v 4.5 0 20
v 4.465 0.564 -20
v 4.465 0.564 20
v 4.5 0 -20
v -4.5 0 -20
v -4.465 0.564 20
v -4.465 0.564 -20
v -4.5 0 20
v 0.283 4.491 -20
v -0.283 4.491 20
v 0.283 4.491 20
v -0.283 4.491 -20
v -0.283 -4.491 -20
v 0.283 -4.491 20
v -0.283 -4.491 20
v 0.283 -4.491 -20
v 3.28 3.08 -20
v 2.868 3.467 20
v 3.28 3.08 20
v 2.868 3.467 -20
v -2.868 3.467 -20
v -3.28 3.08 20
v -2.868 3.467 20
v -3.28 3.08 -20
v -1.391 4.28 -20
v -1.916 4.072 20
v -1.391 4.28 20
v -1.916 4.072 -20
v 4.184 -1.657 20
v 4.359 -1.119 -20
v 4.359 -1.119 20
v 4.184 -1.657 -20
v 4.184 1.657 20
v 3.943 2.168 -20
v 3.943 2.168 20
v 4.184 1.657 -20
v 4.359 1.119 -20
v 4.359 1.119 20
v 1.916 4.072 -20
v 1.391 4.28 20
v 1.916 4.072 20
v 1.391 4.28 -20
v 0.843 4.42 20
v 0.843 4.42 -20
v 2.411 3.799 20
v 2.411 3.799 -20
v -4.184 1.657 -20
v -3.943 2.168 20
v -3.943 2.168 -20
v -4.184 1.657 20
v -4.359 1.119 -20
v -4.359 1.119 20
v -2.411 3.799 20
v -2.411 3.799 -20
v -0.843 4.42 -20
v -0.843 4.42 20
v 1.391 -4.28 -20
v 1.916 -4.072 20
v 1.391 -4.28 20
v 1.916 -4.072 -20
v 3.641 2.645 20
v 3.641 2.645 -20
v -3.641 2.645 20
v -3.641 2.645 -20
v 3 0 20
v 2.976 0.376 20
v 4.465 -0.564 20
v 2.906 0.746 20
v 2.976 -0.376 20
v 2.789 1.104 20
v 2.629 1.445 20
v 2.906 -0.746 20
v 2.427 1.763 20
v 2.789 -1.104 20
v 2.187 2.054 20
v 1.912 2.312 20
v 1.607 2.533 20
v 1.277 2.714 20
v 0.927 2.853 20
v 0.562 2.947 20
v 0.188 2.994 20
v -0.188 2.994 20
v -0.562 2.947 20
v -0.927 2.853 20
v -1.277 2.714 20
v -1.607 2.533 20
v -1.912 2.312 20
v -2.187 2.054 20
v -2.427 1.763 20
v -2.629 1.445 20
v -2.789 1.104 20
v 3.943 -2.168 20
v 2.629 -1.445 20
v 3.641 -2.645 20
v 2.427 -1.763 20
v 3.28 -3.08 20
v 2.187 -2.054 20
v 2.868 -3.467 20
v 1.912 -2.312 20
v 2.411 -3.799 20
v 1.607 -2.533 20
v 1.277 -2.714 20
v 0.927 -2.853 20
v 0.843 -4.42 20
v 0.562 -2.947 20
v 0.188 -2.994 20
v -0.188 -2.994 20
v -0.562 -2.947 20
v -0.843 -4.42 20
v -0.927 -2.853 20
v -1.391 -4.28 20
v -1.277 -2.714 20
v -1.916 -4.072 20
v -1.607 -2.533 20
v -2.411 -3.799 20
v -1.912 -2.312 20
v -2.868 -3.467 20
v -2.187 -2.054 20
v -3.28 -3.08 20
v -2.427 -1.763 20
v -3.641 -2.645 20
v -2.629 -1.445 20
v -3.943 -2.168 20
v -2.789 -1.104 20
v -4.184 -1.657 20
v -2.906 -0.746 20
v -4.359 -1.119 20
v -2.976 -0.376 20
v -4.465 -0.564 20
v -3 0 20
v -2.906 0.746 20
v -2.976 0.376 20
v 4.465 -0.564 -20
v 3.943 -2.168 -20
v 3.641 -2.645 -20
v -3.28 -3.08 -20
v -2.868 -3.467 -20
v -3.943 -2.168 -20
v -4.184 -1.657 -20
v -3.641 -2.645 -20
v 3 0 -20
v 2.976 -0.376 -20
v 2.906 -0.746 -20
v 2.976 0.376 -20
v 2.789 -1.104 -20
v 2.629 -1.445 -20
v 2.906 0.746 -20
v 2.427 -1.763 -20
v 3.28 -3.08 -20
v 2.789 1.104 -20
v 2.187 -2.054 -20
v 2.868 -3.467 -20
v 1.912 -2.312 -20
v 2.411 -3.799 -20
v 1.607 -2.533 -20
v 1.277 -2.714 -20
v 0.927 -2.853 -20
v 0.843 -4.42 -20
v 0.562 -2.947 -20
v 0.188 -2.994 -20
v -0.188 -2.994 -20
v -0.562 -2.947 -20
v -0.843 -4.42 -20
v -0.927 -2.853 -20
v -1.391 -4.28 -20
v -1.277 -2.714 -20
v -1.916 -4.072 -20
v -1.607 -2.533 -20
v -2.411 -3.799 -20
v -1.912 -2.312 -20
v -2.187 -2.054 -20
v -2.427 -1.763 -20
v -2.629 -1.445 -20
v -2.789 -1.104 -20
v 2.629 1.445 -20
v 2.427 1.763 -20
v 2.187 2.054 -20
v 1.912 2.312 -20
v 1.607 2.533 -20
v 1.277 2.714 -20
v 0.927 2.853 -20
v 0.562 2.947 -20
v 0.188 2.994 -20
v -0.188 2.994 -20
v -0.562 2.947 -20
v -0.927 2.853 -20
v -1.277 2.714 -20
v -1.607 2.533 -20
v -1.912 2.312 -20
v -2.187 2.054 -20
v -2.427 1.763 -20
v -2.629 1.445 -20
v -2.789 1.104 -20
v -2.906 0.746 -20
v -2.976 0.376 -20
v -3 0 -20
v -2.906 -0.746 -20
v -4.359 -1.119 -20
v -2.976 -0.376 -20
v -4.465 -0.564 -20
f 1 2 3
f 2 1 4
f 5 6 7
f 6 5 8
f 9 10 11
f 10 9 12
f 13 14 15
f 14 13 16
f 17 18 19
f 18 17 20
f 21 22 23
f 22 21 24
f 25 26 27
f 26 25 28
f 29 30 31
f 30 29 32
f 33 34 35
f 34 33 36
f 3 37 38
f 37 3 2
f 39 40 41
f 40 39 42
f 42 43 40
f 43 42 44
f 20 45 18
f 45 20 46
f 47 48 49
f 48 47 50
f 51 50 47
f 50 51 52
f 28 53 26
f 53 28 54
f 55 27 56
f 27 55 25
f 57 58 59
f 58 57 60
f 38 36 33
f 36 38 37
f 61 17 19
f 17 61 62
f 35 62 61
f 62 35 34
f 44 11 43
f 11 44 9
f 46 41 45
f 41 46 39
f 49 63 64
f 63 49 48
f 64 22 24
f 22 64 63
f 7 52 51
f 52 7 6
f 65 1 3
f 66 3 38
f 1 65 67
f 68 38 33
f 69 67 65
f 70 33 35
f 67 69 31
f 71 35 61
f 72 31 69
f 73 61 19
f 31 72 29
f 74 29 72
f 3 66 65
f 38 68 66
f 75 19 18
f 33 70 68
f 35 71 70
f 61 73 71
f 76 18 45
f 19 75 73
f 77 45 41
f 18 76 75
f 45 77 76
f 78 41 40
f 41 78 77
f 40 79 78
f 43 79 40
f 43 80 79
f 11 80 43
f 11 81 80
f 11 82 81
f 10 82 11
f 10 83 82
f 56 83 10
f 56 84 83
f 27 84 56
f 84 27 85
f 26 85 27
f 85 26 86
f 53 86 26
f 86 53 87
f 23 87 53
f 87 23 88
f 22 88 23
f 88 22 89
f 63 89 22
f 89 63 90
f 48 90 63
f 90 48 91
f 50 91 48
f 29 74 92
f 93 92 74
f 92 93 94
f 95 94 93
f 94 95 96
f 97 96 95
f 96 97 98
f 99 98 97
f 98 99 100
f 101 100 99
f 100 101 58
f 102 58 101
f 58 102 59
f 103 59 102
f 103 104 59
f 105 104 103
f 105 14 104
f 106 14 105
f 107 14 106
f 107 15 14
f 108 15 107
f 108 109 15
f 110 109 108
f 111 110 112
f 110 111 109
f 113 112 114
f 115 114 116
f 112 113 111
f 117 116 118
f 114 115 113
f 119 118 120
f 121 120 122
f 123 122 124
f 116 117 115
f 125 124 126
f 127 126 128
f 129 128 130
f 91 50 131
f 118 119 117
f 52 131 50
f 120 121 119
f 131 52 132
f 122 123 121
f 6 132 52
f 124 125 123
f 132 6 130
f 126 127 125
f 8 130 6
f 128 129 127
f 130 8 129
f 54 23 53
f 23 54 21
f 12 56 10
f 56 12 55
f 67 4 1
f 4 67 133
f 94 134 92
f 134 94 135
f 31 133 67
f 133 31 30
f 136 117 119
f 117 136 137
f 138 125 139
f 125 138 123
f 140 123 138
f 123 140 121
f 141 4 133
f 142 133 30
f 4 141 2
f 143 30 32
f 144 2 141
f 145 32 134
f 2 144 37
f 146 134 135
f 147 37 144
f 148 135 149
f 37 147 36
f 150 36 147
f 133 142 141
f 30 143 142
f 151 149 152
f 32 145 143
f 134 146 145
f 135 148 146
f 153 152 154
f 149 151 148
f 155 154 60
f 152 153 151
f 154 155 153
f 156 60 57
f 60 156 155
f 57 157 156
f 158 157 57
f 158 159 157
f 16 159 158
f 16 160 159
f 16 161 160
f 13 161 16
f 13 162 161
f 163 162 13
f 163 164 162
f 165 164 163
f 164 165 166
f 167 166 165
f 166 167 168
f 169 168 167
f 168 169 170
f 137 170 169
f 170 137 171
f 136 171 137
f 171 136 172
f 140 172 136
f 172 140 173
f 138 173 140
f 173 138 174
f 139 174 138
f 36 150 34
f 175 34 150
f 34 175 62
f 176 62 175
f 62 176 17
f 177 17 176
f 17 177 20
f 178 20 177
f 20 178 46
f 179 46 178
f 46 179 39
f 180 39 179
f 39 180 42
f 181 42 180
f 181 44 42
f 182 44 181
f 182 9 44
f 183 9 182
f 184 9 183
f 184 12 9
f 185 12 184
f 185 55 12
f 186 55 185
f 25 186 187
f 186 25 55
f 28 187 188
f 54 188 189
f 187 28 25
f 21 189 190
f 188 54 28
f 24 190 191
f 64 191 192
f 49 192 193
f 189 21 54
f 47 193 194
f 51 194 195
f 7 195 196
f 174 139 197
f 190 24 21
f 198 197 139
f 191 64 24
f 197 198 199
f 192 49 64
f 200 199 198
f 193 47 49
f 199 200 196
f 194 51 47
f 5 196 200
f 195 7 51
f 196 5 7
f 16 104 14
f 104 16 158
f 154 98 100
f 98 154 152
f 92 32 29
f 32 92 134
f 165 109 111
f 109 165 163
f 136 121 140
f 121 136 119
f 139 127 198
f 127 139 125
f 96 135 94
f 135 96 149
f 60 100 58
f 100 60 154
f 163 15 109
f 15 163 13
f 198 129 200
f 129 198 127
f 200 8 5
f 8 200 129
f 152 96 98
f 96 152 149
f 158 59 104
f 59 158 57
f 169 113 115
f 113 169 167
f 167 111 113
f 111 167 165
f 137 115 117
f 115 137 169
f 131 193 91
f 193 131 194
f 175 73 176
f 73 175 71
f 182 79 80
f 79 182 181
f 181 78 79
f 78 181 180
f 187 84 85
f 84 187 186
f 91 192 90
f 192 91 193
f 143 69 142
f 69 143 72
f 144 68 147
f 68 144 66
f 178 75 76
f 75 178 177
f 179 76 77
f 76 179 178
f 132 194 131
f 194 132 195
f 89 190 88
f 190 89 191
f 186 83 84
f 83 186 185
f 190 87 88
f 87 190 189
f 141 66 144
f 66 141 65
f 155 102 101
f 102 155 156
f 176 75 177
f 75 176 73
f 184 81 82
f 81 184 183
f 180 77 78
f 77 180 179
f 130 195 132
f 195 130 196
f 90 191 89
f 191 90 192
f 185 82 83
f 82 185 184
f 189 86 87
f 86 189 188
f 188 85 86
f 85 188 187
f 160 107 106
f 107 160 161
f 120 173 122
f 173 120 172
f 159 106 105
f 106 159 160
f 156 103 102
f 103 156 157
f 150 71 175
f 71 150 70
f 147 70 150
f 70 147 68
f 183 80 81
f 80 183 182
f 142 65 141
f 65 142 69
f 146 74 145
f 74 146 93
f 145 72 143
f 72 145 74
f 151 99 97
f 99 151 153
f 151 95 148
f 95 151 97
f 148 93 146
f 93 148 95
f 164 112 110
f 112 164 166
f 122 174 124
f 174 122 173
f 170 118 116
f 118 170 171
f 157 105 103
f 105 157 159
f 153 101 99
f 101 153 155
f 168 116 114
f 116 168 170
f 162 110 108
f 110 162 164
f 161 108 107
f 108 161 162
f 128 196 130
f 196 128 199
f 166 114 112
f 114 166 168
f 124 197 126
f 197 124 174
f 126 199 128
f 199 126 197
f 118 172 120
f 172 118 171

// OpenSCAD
$fn = 50;


difference() {
	union() {
		translate(v = [0, 0, -20.0000000000]) {
			cylinder(h = 40, r = 4.5000000000);
		}
	}
	union() {
		translate(v = [0, 0, -100.0000000000]) {
			cylinder(h = 200, r = 3.0000000000);
		}
	}
}
